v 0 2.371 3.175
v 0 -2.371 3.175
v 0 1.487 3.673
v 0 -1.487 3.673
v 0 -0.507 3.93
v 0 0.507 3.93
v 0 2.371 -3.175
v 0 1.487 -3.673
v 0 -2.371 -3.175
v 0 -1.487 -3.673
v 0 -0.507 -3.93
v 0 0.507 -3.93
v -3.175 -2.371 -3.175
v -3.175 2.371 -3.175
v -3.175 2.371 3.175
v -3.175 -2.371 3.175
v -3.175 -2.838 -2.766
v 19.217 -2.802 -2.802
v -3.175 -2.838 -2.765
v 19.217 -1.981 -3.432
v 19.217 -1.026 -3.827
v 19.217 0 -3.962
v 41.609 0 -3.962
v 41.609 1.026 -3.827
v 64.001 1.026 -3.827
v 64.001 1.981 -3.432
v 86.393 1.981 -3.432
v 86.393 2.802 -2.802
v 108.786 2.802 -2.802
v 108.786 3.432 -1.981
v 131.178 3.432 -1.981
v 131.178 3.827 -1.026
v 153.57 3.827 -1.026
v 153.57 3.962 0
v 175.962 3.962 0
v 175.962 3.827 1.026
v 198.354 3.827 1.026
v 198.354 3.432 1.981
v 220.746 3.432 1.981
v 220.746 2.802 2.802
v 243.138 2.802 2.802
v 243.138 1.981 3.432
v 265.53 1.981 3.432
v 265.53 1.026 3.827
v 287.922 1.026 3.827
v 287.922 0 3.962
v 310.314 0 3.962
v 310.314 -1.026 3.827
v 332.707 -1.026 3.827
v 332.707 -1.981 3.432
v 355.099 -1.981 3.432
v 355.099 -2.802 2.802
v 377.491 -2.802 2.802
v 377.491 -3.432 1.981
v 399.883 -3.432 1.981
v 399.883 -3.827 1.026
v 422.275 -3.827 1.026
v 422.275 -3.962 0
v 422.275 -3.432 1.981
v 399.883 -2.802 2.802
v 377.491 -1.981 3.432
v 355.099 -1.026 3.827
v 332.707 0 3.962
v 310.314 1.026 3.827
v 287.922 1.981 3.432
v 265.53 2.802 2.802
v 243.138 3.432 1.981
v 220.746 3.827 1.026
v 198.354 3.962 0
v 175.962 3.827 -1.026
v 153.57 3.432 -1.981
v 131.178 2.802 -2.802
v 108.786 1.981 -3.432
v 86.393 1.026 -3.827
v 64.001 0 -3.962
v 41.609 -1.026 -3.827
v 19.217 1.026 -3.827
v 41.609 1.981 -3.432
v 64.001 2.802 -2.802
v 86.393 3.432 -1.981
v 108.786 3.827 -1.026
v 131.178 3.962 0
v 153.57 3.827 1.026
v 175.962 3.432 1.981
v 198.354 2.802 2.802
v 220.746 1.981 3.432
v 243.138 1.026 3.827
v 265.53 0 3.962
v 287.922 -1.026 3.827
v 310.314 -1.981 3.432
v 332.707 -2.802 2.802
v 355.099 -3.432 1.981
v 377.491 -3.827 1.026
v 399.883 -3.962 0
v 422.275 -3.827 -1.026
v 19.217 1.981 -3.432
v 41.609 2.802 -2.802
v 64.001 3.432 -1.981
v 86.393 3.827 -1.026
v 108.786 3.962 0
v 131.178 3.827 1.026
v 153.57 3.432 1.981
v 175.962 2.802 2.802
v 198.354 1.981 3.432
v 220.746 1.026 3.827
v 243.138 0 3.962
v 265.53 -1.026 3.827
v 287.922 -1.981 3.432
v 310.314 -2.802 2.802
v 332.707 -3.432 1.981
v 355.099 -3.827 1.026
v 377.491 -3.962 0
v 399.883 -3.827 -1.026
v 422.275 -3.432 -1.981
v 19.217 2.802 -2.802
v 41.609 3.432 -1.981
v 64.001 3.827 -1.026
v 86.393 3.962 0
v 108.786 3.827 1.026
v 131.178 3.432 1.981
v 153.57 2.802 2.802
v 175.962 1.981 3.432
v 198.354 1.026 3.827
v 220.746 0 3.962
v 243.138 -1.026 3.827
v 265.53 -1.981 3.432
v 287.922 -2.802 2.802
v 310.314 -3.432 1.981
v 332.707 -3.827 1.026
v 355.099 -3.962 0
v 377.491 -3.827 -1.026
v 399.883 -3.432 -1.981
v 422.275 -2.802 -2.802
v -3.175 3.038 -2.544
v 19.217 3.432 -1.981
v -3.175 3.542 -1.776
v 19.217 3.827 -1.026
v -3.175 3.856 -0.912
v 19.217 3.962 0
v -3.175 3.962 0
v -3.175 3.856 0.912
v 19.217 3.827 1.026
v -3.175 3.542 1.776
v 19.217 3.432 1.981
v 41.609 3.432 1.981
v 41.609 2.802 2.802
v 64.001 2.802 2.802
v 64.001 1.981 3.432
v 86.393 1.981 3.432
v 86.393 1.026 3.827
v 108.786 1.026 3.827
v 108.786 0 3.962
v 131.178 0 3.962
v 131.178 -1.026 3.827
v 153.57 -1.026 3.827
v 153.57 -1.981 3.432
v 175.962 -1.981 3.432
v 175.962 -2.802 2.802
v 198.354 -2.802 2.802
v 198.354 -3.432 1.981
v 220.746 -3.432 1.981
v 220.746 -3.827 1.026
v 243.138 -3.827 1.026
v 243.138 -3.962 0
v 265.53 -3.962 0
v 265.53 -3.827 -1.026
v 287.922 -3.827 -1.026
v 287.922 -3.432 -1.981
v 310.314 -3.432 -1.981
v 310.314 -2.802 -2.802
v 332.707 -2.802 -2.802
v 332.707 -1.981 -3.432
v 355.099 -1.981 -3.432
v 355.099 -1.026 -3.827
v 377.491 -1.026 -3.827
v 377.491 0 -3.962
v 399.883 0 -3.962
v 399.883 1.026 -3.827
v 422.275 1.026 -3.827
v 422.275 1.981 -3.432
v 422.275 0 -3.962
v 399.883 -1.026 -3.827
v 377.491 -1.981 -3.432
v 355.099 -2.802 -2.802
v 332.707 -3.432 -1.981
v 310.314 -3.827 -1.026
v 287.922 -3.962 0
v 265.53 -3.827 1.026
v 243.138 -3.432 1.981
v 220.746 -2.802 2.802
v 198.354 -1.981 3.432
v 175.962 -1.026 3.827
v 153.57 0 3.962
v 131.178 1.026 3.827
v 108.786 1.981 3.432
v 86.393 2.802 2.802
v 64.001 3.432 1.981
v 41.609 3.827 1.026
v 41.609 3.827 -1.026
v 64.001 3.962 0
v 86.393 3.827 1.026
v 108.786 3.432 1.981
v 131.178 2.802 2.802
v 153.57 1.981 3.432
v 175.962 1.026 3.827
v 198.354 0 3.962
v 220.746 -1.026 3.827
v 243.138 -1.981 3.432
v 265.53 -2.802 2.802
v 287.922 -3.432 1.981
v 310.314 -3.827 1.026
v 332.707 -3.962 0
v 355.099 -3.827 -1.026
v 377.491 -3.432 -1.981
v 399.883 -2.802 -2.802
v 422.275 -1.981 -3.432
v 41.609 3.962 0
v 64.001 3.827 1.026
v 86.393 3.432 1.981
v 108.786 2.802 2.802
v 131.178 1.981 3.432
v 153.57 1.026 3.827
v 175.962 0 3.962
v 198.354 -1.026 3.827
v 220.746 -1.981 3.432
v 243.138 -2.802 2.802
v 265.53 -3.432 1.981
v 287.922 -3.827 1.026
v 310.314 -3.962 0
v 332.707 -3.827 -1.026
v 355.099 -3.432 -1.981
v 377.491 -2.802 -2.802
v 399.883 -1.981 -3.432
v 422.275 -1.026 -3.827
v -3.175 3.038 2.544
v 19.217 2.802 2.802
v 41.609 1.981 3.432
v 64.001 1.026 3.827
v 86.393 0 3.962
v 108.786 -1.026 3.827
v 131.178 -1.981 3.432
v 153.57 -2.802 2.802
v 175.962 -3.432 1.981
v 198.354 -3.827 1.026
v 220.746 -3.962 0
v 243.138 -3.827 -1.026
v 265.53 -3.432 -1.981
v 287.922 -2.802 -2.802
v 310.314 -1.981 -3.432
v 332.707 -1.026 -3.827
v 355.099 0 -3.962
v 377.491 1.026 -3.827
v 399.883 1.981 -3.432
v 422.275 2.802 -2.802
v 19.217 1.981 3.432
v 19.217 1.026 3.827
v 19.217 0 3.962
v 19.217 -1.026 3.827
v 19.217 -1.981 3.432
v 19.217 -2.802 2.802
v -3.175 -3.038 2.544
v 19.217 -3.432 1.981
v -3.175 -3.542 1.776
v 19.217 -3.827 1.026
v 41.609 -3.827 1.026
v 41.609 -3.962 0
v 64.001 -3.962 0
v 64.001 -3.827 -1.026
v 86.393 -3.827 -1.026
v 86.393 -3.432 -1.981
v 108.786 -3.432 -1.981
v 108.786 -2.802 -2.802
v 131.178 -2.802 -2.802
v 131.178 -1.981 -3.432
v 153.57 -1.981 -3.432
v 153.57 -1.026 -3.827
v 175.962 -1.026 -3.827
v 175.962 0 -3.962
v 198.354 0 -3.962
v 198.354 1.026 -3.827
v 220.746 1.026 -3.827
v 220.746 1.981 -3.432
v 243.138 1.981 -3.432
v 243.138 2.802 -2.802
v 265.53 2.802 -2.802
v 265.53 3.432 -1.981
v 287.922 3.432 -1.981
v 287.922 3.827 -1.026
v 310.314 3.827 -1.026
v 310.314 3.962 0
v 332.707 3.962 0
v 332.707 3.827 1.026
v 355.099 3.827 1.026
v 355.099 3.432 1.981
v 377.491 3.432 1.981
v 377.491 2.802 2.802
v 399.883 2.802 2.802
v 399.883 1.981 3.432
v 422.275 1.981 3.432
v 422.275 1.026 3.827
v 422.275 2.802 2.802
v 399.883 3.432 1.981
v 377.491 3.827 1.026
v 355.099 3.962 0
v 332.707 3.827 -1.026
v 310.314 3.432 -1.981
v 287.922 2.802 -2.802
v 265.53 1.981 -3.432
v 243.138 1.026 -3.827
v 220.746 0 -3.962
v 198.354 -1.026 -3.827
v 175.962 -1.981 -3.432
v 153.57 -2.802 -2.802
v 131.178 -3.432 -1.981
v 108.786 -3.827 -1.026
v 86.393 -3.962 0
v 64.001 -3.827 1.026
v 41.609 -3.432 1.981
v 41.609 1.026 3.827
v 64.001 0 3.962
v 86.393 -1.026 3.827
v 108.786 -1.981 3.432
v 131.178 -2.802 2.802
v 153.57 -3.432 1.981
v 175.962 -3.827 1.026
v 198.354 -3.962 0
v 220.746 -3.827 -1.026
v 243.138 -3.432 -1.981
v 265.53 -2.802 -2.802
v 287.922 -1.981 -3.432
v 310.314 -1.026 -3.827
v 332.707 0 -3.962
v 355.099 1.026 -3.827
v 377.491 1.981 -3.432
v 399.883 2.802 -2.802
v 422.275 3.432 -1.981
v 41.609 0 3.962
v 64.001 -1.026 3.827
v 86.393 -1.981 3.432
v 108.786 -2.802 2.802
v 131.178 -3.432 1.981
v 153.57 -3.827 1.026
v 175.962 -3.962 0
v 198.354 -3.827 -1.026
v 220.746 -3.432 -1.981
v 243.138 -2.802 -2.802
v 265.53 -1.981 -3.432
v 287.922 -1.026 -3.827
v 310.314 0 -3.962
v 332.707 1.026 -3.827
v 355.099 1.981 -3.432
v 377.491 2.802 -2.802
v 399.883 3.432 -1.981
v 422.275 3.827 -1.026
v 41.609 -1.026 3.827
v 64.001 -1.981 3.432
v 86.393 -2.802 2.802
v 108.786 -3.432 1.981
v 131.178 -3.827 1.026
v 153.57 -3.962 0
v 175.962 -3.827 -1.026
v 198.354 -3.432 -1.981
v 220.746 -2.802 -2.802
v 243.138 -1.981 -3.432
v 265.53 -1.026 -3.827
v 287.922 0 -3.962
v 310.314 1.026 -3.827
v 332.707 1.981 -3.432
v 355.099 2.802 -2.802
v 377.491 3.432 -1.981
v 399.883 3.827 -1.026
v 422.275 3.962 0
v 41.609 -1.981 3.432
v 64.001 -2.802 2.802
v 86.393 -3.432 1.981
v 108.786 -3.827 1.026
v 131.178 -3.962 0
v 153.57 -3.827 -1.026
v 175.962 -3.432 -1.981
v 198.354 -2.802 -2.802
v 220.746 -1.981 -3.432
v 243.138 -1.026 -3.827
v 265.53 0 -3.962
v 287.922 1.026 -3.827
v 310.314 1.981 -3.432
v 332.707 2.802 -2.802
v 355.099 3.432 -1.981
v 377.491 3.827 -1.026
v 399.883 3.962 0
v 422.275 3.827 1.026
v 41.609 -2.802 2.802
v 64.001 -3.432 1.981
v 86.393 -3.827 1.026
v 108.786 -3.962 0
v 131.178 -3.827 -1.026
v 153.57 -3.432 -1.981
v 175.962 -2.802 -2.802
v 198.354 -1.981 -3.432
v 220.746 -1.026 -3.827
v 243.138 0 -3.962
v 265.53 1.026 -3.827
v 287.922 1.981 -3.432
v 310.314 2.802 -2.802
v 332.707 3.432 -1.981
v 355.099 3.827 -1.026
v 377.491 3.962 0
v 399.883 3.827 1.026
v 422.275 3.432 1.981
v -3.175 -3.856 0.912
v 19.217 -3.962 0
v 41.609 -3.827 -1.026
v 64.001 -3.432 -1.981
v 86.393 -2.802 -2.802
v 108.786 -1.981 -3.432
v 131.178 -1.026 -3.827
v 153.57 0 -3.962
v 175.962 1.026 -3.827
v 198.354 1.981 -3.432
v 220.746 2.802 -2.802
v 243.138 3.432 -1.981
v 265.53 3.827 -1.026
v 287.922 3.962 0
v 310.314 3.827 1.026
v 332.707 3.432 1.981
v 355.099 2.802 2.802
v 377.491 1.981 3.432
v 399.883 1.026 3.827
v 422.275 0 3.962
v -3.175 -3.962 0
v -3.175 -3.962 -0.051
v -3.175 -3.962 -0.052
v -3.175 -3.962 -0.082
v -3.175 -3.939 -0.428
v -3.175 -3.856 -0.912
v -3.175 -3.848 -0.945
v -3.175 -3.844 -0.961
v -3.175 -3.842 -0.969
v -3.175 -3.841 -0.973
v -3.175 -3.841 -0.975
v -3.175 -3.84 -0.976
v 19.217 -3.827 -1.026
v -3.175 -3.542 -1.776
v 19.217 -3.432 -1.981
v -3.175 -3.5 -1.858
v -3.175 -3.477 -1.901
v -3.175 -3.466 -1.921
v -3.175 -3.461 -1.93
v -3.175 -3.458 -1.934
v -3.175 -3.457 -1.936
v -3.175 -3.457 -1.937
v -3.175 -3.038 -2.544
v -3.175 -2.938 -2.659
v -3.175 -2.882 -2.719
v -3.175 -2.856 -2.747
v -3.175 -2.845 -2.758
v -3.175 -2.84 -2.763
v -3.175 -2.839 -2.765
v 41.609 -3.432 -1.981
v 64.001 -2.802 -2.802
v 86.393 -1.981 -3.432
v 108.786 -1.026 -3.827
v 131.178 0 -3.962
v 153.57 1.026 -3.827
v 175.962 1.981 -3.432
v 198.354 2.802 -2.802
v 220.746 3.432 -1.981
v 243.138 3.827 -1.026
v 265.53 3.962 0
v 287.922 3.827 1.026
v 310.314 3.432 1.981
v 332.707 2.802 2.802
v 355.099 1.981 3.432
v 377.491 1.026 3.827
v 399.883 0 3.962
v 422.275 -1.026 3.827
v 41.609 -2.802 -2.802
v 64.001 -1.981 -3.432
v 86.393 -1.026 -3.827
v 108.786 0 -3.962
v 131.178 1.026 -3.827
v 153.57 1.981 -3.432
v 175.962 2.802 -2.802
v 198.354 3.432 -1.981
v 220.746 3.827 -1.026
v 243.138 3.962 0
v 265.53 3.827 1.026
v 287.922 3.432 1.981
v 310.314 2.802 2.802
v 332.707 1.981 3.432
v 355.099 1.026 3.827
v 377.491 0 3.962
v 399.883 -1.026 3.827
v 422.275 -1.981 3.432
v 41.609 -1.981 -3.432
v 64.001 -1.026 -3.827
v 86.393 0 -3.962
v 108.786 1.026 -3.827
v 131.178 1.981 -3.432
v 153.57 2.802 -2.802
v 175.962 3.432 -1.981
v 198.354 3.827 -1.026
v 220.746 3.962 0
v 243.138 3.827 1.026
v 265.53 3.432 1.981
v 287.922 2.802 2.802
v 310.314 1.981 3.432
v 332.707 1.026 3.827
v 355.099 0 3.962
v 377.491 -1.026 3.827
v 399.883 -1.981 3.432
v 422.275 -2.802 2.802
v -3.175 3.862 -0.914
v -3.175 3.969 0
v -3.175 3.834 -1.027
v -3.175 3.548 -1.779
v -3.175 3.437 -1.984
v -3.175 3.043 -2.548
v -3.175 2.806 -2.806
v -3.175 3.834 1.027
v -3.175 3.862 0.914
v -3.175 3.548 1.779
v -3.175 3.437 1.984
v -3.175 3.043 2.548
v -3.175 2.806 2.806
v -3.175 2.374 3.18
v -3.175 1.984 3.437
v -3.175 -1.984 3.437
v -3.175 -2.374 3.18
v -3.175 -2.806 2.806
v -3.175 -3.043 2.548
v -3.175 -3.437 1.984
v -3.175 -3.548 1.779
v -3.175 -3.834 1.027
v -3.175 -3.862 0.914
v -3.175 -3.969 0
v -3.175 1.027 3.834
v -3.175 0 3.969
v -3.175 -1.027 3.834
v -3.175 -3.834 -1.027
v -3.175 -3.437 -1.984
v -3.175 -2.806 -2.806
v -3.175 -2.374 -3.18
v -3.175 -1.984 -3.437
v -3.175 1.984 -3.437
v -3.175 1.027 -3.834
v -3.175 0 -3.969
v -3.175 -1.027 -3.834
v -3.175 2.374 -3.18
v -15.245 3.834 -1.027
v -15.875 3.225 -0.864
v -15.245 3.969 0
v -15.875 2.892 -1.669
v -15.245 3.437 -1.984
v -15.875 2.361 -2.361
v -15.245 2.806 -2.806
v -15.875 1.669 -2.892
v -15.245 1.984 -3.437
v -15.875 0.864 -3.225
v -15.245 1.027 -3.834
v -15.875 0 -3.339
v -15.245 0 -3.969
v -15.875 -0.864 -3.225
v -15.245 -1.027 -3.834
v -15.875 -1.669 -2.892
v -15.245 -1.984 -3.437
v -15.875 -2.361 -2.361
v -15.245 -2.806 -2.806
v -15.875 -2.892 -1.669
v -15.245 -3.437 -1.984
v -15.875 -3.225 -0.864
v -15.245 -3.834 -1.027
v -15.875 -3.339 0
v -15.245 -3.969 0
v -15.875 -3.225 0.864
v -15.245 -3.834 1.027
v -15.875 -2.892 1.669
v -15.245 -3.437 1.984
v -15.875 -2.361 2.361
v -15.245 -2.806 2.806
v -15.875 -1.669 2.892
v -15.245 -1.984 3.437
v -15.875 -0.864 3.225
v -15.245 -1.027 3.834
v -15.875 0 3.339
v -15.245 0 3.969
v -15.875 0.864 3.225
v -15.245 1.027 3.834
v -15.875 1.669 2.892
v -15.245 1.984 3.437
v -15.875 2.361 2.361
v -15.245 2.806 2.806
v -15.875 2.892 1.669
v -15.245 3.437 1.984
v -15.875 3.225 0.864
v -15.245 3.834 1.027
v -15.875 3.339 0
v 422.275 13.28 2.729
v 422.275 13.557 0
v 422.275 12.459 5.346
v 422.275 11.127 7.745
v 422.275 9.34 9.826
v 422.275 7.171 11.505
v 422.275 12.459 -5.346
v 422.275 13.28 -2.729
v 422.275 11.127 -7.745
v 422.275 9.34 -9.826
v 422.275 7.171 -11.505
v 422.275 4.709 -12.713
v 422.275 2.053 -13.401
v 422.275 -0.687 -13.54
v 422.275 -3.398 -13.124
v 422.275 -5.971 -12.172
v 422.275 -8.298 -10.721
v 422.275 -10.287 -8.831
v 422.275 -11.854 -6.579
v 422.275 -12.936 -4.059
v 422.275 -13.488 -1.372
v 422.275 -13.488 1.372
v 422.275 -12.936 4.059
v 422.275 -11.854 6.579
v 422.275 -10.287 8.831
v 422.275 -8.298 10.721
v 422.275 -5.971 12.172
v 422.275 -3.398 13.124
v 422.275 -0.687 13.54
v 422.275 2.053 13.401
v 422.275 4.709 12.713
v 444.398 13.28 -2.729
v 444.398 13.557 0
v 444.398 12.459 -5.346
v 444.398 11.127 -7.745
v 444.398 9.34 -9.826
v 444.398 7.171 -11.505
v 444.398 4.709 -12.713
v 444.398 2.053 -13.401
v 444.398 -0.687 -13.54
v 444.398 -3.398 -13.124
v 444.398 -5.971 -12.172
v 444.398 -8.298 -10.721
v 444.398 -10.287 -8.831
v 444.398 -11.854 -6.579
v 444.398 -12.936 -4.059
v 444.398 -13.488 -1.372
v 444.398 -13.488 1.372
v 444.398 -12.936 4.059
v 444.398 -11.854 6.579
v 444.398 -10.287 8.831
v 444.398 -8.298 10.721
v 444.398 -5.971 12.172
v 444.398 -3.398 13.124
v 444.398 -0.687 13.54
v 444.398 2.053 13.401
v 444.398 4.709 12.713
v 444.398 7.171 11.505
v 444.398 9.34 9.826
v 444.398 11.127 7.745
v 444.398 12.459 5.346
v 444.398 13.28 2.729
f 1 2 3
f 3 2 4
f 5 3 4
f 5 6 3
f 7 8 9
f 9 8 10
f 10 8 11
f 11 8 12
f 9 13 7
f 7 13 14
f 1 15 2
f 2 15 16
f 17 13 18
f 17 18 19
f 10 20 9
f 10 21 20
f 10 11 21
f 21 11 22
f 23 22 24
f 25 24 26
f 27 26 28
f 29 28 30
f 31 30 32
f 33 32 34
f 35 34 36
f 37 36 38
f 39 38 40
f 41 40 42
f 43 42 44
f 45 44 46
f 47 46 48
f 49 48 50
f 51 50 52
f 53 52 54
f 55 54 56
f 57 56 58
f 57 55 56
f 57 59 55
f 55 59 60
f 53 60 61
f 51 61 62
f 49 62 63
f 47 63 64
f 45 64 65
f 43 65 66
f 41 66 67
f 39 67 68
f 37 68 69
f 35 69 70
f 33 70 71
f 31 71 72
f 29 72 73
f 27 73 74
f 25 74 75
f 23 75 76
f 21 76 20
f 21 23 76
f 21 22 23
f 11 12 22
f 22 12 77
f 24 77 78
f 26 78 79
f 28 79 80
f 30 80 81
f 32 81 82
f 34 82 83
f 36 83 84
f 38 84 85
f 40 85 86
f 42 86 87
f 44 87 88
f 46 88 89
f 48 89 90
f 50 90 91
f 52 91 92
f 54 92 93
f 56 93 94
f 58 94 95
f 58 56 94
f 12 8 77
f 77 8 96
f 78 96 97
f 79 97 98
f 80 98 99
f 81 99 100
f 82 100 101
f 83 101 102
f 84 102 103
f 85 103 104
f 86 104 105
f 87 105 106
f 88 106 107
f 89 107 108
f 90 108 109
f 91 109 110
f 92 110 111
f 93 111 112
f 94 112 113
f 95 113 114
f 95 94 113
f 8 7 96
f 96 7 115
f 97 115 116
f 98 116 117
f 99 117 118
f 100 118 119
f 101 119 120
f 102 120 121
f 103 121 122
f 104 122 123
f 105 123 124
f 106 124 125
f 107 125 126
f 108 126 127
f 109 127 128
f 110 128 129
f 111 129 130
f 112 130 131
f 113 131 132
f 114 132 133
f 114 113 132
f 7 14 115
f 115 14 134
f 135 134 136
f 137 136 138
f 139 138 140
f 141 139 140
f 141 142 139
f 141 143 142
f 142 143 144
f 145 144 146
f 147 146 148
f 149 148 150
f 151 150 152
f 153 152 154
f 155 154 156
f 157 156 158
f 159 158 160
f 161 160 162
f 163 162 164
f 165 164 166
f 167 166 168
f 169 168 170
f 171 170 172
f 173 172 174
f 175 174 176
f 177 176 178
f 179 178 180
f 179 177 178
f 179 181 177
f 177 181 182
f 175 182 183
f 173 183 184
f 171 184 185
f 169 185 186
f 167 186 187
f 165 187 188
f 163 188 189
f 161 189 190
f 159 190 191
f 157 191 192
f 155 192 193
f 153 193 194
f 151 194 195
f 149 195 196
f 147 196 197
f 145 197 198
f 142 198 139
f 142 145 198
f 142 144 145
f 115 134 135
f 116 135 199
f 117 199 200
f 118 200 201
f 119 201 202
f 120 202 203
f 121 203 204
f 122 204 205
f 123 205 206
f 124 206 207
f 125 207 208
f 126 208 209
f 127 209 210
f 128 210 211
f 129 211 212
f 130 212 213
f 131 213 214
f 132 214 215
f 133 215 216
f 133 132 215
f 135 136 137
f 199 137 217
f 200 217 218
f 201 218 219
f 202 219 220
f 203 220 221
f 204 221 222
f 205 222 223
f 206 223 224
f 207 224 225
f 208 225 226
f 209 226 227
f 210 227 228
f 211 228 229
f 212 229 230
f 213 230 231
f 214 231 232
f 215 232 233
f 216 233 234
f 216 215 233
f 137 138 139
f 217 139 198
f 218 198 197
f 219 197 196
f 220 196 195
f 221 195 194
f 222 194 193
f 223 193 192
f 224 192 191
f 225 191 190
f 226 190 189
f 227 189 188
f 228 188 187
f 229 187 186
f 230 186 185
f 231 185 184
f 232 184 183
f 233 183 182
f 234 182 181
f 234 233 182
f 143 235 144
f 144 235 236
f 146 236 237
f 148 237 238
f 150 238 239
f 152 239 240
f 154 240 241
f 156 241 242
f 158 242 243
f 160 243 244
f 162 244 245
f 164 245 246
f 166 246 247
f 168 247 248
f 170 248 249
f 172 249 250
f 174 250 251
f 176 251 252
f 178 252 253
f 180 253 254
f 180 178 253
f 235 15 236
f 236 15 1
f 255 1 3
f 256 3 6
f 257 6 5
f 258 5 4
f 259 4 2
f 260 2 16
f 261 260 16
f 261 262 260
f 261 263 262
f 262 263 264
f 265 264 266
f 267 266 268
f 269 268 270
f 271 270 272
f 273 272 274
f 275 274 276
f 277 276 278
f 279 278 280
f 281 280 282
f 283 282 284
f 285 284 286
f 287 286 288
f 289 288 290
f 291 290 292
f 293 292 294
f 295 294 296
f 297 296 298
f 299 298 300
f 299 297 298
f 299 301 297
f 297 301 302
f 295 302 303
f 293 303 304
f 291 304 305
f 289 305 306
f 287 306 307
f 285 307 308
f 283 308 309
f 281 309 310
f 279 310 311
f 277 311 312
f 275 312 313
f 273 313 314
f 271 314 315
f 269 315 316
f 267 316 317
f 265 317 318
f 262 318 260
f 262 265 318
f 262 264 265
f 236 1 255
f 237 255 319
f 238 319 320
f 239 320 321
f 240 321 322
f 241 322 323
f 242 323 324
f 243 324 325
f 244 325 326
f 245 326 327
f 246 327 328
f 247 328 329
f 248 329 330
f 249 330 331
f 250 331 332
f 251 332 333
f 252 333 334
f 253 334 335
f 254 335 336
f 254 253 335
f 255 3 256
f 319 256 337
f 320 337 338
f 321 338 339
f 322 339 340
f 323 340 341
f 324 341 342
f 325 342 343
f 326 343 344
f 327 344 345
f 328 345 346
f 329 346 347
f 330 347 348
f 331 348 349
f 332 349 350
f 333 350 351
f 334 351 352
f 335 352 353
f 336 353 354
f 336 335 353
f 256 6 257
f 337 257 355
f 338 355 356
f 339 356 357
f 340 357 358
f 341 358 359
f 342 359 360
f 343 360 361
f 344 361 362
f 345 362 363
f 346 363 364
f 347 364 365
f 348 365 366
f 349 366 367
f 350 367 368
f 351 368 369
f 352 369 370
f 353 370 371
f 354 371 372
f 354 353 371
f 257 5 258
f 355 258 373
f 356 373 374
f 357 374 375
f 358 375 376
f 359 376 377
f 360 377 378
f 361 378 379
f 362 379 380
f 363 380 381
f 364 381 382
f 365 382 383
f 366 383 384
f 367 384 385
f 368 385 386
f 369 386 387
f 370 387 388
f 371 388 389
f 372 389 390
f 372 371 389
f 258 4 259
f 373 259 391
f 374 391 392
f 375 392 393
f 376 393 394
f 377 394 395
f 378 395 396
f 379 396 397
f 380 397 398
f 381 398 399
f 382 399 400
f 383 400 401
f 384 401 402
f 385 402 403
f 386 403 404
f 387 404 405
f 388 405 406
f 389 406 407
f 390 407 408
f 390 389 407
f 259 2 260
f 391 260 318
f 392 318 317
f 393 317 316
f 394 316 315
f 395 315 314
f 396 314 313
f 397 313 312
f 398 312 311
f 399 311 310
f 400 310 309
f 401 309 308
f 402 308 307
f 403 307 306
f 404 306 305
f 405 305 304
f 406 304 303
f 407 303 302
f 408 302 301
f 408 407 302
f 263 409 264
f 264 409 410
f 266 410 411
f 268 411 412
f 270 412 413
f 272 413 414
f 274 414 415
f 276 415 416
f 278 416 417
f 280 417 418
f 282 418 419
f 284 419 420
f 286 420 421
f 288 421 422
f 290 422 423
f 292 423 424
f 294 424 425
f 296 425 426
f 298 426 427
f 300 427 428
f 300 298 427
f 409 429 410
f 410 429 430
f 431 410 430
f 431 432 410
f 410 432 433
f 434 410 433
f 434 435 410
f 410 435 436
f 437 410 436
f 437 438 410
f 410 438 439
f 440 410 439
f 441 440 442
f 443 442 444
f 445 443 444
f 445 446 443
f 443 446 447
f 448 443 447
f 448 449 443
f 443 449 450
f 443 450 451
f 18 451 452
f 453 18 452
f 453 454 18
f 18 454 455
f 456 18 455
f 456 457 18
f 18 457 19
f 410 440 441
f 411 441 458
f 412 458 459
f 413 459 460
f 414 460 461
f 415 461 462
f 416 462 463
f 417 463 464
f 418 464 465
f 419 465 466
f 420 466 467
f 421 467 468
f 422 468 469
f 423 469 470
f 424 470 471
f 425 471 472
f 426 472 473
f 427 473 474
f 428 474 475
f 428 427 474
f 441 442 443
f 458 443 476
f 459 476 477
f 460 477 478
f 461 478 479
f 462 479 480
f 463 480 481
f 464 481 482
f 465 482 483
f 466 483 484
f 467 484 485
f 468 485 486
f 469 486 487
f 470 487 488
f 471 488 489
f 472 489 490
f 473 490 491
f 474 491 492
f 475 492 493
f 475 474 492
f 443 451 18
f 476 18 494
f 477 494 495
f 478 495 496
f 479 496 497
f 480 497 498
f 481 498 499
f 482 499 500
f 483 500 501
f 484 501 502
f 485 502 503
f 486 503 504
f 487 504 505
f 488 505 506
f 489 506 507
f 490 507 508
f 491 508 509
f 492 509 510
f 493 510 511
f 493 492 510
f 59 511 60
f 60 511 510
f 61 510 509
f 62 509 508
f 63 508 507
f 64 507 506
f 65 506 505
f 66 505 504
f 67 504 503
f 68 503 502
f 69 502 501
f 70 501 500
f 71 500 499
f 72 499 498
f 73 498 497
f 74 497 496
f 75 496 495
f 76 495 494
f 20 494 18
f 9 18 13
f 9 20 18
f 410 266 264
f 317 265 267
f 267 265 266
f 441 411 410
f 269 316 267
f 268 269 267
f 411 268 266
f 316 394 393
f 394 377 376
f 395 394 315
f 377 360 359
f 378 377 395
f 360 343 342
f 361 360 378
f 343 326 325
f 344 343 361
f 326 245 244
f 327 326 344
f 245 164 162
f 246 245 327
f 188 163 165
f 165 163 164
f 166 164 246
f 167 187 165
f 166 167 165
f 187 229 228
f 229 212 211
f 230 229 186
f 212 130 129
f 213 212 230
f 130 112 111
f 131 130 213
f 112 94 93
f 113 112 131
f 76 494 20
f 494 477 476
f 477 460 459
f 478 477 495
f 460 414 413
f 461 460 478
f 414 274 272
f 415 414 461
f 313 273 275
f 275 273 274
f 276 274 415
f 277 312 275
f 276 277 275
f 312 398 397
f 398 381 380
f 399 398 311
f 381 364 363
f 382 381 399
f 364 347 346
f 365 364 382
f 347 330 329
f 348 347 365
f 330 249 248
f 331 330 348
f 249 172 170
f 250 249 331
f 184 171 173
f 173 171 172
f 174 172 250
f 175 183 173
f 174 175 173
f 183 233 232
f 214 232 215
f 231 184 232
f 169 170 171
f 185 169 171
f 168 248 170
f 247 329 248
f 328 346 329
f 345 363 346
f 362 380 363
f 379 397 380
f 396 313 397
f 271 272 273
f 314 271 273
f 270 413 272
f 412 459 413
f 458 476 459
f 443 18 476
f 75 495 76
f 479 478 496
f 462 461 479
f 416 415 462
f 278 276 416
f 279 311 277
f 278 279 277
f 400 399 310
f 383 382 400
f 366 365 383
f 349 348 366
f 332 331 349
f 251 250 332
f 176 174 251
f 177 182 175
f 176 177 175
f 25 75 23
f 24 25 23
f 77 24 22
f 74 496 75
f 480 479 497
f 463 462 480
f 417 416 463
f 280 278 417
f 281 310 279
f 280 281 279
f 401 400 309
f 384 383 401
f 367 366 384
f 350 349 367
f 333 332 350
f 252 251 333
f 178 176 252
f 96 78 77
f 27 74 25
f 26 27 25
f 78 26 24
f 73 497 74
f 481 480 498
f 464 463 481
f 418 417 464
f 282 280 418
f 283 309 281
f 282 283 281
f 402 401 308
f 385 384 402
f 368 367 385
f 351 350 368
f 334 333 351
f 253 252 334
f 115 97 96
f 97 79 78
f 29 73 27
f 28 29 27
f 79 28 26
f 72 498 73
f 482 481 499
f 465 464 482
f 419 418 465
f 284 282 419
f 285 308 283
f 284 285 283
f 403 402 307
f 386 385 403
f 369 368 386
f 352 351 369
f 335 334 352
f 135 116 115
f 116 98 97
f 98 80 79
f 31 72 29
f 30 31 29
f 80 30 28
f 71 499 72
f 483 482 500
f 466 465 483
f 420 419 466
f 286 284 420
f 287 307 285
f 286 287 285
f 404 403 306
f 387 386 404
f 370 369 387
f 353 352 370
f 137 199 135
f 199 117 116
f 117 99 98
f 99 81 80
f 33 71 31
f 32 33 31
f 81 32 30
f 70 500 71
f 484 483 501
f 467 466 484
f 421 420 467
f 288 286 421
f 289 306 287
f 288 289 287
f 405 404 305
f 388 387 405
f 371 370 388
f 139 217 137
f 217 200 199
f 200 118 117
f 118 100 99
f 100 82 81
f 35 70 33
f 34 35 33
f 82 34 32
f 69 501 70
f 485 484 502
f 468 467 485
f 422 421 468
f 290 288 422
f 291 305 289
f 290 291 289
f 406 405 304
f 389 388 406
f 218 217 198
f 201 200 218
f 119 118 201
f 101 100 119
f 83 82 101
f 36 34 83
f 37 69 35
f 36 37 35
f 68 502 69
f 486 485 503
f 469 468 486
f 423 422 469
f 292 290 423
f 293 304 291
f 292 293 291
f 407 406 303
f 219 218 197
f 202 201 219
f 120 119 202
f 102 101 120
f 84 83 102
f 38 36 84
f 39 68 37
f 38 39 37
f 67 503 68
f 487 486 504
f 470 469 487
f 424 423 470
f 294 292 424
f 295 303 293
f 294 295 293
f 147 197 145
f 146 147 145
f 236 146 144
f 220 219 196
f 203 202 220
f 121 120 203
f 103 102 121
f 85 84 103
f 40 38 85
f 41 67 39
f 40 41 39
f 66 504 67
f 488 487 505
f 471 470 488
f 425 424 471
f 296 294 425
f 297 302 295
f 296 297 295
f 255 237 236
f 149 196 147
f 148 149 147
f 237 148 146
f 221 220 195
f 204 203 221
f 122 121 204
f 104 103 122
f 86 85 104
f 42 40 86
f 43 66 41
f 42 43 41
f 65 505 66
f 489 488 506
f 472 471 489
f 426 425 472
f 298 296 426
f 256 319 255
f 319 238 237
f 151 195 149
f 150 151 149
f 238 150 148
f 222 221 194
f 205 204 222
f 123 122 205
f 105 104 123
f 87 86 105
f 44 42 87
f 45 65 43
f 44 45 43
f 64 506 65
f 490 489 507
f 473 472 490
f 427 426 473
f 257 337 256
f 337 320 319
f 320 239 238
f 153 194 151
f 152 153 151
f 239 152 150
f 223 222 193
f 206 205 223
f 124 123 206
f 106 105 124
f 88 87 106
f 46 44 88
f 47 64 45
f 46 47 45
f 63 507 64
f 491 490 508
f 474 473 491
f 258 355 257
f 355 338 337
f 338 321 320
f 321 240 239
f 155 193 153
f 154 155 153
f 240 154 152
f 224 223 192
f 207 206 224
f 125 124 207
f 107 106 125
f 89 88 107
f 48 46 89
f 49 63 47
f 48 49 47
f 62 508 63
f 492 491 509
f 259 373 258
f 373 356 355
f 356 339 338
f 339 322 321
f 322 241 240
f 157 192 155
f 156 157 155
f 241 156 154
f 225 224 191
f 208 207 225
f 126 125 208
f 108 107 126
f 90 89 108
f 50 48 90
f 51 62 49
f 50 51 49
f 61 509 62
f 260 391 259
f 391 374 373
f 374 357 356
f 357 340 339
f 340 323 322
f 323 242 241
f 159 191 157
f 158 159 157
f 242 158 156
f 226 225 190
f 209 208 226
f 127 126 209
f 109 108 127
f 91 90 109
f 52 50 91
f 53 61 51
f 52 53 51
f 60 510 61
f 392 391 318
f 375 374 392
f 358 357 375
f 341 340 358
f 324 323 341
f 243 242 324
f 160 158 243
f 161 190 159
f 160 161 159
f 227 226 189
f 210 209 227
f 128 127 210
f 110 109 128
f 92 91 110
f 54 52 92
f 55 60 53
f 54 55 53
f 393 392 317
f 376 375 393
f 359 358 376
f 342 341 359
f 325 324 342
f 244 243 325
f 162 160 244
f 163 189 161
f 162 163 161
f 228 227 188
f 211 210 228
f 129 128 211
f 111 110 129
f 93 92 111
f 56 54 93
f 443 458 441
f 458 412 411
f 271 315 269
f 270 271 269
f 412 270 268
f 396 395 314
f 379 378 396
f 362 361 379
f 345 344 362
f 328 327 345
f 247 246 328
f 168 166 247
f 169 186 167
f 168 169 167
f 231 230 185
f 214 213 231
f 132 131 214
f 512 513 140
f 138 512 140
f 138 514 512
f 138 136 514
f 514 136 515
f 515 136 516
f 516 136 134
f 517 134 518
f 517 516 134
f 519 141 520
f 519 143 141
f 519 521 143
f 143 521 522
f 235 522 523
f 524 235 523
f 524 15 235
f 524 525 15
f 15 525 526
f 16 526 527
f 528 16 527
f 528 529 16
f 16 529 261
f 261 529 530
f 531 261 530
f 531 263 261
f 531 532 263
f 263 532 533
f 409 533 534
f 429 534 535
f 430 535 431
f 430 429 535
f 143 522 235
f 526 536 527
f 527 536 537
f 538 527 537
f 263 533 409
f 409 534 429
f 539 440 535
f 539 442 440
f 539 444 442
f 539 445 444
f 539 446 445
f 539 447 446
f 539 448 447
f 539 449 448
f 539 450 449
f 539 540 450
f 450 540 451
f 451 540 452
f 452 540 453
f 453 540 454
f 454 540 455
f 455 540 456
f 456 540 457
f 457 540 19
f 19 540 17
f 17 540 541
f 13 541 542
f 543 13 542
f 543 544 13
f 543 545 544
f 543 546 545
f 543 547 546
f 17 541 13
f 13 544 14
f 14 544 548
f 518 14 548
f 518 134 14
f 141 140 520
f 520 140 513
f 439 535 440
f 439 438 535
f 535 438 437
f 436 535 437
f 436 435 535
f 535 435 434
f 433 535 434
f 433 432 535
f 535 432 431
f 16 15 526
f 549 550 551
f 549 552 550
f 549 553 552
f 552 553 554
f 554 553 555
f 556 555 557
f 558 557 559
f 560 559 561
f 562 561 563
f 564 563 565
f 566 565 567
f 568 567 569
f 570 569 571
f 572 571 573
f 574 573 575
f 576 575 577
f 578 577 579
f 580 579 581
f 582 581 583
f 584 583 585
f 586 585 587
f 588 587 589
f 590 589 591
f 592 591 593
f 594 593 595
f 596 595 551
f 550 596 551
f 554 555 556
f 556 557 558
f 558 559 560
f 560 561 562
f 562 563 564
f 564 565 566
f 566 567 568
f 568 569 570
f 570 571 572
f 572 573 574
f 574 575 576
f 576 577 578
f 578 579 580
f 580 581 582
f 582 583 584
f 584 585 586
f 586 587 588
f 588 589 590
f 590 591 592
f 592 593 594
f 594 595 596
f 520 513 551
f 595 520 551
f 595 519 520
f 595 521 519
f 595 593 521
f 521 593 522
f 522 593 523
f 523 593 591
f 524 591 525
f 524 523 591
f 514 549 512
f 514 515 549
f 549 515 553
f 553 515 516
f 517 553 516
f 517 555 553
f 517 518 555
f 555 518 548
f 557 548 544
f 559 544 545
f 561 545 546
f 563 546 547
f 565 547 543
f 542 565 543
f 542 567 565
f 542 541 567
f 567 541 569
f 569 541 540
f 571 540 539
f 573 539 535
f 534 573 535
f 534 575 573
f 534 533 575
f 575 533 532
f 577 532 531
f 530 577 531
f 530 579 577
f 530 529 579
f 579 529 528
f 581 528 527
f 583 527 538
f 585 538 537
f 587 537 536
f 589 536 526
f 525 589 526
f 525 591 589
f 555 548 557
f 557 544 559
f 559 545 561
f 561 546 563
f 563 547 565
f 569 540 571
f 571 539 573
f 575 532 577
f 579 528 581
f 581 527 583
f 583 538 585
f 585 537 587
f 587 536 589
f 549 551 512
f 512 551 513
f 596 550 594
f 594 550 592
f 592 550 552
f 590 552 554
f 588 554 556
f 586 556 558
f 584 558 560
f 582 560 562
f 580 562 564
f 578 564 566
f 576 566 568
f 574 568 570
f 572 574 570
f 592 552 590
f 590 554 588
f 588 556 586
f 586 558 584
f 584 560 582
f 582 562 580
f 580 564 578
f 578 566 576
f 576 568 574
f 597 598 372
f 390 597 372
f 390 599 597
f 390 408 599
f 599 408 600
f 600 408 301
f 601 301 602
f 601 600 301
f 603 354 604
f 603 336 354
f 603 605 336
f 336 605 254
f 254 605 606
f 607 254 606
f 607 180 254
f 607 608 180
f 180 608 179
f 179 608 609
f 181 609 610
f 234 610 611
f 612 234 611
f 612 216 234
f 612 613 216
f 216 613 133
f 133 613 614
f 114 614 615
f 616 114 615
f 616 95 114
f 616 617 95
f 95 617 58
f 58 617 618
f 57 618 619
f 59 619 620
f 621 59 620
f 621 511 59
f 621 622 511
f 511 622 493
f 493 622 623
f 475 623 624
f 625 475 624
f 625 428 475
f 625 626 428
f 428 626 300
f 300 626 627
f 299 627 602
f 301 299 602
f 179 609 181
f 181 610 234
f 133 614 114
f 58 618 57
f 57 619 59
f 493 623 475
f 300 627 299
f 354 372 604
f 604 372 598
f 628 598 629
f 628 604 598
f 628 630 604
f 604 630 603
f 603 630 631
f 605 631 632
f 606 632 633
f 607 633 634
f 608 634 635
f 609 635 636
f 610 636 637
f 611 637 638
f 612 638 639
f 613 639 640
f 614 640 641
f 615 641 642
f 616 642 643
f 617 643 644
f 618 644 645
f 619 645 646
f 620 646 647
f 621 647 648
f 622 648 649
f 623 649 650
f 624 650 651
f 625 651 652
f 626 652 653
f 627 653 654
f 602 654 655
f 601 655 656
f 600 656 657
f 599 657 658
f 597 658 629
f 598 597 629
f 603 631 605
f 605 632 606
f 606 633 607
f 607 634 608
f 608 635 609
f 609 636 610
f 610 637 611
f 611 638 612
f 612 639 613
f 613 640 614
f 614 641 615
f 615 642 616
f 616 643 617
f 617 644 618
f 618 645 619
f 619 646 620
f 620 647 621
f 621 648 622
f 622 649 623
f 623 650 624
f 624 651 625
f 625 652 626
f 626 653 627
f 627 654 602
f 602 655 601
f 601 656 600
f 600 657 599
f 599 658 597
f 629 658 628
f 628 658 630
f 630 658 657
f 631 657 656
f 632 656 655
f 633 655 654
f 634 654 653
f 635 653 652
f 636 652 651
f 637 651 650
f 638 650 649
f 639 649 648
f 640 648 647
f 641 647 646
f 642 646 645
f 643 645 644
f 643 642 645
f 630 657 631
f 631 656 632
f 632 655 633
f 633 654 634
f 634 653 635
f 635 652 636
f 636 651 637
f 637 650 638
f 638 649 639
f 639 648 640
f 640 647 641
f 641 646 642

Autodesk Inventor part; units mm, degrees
sketch "Sketch_1" plane through (0, 0, 0) normal (0, 0, 1) x (1, 0, 0)
  line L0 (444.3984, 0) -> (-3.175, 0)
  line L1 (-3.175, 0) -> (-3.175, 3.9624)
  line L2 (-3.175, 3.9624) -> (422.275, 3.9624)
  line L3 (422.275, 3.9624) -> (422.275, 13.5572)
  line L4 (422.275, 13.5572) -> (444.3984, 13.5572)
  line L5 (444.3984, 13.5572) -> (444.3984, 0)
  line L6 (444.3984, 0) -> (-3.175, 0)
revolve "Revolution1" add sketch "Sketch_1" angle 360 about axis through (444.3984, 0, 0) along (1, 0, 0)
sketch "Sketch_3" plane through (0, 0, 0) normal (0, 0, 1) x (1, 0, 0)
  line L0 (-3.175, 0) -> (-15.875, 0)
  line L1 (-15.875, 0) -> (-15.875, 3.3388)
  line L2 (-15.875, 3.3388) -> (-15.2451, 3.9688)
  line L3 (-15.2451, 3.9688) -> (-3.175, 3.9688)
  line L4 (-3.175, 3.9688) -> (-3.175, 0)
  line L5 (-3.175, 0) -> (-15.875, 0)
revolve "Revolution2" add sketch "Sketch_3" angle 360 about axis through (-3.175, 0, 0) along (1, 0, 0)
thread "Thread1" size "5/16-20 UN" class "3A" standard "ANSI Unified Screw Threads" full length
sketch "Sketch_10" plane through (-3.175, 0, 0) normal (1, 0, 0) x (0, 0, -1)
  line L0 (-7.9248, 7.9248) -> (-7.9248, -7.9248)
  line L1 (-7.9248, -7.9248) -> (7.9248, -7.9248)
  line L2 (7.9248, -7.9248) -> (7.9248, 7.9248)
  line L3 (7.9248, 7.9248) -> (-7.9248, 7.9248)
  line L4 (-3.175, 3.9624) -> (-3.175, -3.9624)
  line L5 (-3.175, -3.9624) -> (3.175, -3.9624)
  line L6 (3.175, -3.9624) -> (3.175, 3.9624)
  line L7 (3.175, 3.9624) -> (-3.175, 3.9624)
extrude "Extrusion1" cut sketch "Sketch_10" along normal blind 3.175
ref_plane "rod_cp_XY" through (0, 0, 0) normal (1, 0, 0) x (0, 0, -1)
ref_plane "rod_cp_YZ" through (0, 0, 0) normal (0, 0, -1) x (0, 1, 0)
ref_plane "rod_cp_ZX" through (0, 0, 0) normal (0, 1, 0) x (1, 0, 0)
ref_plane "to_rod_clevis_XY" through (-15.875, 0, 0) normal (1, 0, 0) x (0, 0, -1)
ref_plane "to_rod_clevis_YZ" through (-15.875, 0, 0) normal (0, 0, -1) x (0, 1, 0)
ref_plane "to_rod_clevis_ZX" through (-15.875, 0, 0) normal (0, 1, 0) x (1, 0, 0)
ref_plane "rl2_XY" through (-3.175, 0, 0) normal (1, 0, 0) x (0, 0, -1)
ref_plane "rl2_YZ" through (-3.175, 0, 0) normal (0, 0, -1) x (0, 1, 0)
ref_plane "rl2_ZX" through (-3.175, 0, 0) normal (0, 1, 0) x (1, 0, 0)
ref_plane "rl1_XY" through (-15.875, 0, 0) normal (1, 0, 0) x (0, 0, -1)
ref_plane "rl1_YZ" through (-15.875, 0, 0) normal (0, 0, -1) x (0, 1, 0)
ref_plane "rl1_ZX" through (-15.875, 0, 0) normal (0, 1, 0) x (1, 0, 0)
ref_plane "thd1_XY" through (-15.875, 3.9688, 0) normal (1, 0, 0) x (0, 0, -1)
ref_plane "thd1_YZ" through (-15.875, 3.9688, 0) normal (0, 0, -1) x (0, 1, 0)
ref_plane "thd1_ZX" through (-15.875, 3.9688, 0) normal (0, 1, 0) x (1, 0, 0)
ref_plane "thd2_XY" through (-15.875, -3.9688, 0) normal (1, 0, 0) x (0, 0, -1)
ref_plane "thd2_YZ" through (-15.875, -3.9688, 0) normal (0, 0, -1) x (0, 1, 0)
ref_plane "thd2_ZX" through (-15.875, -3.9688, 0) normal (0, 1, 0) x (1, 0, 0)
ref_plane "dia1_XY" through (-3.175, 3.9624, 0) normal (1, 0, 0) x (0, 0, -1)
ref_plane "dia1_YZ" through (-3.175, 3.9624, 0) normal (0, 0, -1) x (0, 1, 0)
ref_plane "dia1_ZX" through (-3.175, 3.9624, 0) normal (0, 1, 0) x (1, 0, 0)
ref_plane "dia2_XY" through (-3.175, -3.9624, 0) normal (1, 0, 0) x (0, 0, -1)
ref_plane "dia2_YZ" through (-3.175, -3.9624, 0) normal (0, 0, -1) x (0, 1, 0)
ref_plane "dia2_ZX" through (-3.175, -3.9624, 0) normal (0, 1, 0) x (1, 0, 0)
ref_plane "wf1_XY" through (-3.175, 0, 0) normal (1, 0, 0) x (0, 0, -1)
ref_plane "wf1_YZ" through (-3.175, 0, 0) normal (0, 0, -1) x (0, 1, 0)
ref_plane "wf1_ZX" through (-3.175, 0, 0) normal (0, 1, 0) x (1, 0, 0)
ref_plane "wf2_XY" through (0, 0, 0) normal (1, 0, 0) x (0, 0, -1)
ref_plane "wf2_YZ" through (0, 0, 0) normal (0, 0, -1) x (0, 1, 0)
ref_plane "wf2_ZX" through (0, 0, 0) normal (0, 1, 0) x (1, 0, 0)
ref_plane "hh1_XY" through (472.1606, 0, 0) normal (0, 0, 1) x (1, 0, 0)
ref_plane "hh1_YZ" through (472.1606, 0, 0) normal (1, 0, 0) x (0, 1, 0)
ref_plane "hh1_ZX" through (472.1606, 0, 0) normal (0, 1, 0) x (0, 0, 1)
ref_plane "hh2_XY" through (478.5614, 0, 0) normal (0, 0, 1) x (1, 0, 0)
ref_plane "hh2_YZ" through (478.5614, 0, 0) normal (1, 0, 0) x (0, 1, 0)
ref_plane "hh2_ZX" through (478.5614, 0, 0) normal (0, 1, 0) x (0, 0, 1)
ref_plane "dia12_XY" through (0, 0, 14.1351) normal (1, 0, 0) x (0, 0, -1)
ref_plane "dia12_YZ" through (0, 0, 14.1351) normal (0, 0, -1) x (0, 1, 0)
ref_plane "dia12_ZX" through (0, 0, 14.1351) normal (0, 1, 0) x (1, 0, 0)
ref_plane "dia22_XY" through (0, 0, -14.1351) normal (1, 0, 0) x (0, 0, -1)
ref_plane "dia22_YZ" through (0, 0, -14.1351) normal (0, 0, -1) x (0, 1, 0)
ref_plane "dia22_ZX" through (0, 0, -14.1351) normal (0, 1, 0) x (1, 0, 0)
ref_plane "wfw1_XY" through (-3.175, 0, -3.175) normal (0, 1, 0) x (1, 0, 0)
ref_plane "wfw1_YZ" through (-3.175, 0, -3.175) normal (1, 0, 0) x (0, 0, -1)
ref_plane "wfw1_ZX" through (-3.175, 0, -3.175) normal (0, 0, -1) x (0, 1, 0)
ref_plane "wfw2_XY" through (-3.175, 0, 3.175) normal (0, 1, 0) x (1, 0, 0)
ref_plane "wfw2_YZ" through (-3.175, 0, 3.175) normal (1, 0, 0) x (0, 0, -1)
ref_plane "wfw2_ZX" through (-3.175, 0, 3.175) normal (0, 0, -1) x (0, 1, 0)
properties part number "0915-DX0_rod"
